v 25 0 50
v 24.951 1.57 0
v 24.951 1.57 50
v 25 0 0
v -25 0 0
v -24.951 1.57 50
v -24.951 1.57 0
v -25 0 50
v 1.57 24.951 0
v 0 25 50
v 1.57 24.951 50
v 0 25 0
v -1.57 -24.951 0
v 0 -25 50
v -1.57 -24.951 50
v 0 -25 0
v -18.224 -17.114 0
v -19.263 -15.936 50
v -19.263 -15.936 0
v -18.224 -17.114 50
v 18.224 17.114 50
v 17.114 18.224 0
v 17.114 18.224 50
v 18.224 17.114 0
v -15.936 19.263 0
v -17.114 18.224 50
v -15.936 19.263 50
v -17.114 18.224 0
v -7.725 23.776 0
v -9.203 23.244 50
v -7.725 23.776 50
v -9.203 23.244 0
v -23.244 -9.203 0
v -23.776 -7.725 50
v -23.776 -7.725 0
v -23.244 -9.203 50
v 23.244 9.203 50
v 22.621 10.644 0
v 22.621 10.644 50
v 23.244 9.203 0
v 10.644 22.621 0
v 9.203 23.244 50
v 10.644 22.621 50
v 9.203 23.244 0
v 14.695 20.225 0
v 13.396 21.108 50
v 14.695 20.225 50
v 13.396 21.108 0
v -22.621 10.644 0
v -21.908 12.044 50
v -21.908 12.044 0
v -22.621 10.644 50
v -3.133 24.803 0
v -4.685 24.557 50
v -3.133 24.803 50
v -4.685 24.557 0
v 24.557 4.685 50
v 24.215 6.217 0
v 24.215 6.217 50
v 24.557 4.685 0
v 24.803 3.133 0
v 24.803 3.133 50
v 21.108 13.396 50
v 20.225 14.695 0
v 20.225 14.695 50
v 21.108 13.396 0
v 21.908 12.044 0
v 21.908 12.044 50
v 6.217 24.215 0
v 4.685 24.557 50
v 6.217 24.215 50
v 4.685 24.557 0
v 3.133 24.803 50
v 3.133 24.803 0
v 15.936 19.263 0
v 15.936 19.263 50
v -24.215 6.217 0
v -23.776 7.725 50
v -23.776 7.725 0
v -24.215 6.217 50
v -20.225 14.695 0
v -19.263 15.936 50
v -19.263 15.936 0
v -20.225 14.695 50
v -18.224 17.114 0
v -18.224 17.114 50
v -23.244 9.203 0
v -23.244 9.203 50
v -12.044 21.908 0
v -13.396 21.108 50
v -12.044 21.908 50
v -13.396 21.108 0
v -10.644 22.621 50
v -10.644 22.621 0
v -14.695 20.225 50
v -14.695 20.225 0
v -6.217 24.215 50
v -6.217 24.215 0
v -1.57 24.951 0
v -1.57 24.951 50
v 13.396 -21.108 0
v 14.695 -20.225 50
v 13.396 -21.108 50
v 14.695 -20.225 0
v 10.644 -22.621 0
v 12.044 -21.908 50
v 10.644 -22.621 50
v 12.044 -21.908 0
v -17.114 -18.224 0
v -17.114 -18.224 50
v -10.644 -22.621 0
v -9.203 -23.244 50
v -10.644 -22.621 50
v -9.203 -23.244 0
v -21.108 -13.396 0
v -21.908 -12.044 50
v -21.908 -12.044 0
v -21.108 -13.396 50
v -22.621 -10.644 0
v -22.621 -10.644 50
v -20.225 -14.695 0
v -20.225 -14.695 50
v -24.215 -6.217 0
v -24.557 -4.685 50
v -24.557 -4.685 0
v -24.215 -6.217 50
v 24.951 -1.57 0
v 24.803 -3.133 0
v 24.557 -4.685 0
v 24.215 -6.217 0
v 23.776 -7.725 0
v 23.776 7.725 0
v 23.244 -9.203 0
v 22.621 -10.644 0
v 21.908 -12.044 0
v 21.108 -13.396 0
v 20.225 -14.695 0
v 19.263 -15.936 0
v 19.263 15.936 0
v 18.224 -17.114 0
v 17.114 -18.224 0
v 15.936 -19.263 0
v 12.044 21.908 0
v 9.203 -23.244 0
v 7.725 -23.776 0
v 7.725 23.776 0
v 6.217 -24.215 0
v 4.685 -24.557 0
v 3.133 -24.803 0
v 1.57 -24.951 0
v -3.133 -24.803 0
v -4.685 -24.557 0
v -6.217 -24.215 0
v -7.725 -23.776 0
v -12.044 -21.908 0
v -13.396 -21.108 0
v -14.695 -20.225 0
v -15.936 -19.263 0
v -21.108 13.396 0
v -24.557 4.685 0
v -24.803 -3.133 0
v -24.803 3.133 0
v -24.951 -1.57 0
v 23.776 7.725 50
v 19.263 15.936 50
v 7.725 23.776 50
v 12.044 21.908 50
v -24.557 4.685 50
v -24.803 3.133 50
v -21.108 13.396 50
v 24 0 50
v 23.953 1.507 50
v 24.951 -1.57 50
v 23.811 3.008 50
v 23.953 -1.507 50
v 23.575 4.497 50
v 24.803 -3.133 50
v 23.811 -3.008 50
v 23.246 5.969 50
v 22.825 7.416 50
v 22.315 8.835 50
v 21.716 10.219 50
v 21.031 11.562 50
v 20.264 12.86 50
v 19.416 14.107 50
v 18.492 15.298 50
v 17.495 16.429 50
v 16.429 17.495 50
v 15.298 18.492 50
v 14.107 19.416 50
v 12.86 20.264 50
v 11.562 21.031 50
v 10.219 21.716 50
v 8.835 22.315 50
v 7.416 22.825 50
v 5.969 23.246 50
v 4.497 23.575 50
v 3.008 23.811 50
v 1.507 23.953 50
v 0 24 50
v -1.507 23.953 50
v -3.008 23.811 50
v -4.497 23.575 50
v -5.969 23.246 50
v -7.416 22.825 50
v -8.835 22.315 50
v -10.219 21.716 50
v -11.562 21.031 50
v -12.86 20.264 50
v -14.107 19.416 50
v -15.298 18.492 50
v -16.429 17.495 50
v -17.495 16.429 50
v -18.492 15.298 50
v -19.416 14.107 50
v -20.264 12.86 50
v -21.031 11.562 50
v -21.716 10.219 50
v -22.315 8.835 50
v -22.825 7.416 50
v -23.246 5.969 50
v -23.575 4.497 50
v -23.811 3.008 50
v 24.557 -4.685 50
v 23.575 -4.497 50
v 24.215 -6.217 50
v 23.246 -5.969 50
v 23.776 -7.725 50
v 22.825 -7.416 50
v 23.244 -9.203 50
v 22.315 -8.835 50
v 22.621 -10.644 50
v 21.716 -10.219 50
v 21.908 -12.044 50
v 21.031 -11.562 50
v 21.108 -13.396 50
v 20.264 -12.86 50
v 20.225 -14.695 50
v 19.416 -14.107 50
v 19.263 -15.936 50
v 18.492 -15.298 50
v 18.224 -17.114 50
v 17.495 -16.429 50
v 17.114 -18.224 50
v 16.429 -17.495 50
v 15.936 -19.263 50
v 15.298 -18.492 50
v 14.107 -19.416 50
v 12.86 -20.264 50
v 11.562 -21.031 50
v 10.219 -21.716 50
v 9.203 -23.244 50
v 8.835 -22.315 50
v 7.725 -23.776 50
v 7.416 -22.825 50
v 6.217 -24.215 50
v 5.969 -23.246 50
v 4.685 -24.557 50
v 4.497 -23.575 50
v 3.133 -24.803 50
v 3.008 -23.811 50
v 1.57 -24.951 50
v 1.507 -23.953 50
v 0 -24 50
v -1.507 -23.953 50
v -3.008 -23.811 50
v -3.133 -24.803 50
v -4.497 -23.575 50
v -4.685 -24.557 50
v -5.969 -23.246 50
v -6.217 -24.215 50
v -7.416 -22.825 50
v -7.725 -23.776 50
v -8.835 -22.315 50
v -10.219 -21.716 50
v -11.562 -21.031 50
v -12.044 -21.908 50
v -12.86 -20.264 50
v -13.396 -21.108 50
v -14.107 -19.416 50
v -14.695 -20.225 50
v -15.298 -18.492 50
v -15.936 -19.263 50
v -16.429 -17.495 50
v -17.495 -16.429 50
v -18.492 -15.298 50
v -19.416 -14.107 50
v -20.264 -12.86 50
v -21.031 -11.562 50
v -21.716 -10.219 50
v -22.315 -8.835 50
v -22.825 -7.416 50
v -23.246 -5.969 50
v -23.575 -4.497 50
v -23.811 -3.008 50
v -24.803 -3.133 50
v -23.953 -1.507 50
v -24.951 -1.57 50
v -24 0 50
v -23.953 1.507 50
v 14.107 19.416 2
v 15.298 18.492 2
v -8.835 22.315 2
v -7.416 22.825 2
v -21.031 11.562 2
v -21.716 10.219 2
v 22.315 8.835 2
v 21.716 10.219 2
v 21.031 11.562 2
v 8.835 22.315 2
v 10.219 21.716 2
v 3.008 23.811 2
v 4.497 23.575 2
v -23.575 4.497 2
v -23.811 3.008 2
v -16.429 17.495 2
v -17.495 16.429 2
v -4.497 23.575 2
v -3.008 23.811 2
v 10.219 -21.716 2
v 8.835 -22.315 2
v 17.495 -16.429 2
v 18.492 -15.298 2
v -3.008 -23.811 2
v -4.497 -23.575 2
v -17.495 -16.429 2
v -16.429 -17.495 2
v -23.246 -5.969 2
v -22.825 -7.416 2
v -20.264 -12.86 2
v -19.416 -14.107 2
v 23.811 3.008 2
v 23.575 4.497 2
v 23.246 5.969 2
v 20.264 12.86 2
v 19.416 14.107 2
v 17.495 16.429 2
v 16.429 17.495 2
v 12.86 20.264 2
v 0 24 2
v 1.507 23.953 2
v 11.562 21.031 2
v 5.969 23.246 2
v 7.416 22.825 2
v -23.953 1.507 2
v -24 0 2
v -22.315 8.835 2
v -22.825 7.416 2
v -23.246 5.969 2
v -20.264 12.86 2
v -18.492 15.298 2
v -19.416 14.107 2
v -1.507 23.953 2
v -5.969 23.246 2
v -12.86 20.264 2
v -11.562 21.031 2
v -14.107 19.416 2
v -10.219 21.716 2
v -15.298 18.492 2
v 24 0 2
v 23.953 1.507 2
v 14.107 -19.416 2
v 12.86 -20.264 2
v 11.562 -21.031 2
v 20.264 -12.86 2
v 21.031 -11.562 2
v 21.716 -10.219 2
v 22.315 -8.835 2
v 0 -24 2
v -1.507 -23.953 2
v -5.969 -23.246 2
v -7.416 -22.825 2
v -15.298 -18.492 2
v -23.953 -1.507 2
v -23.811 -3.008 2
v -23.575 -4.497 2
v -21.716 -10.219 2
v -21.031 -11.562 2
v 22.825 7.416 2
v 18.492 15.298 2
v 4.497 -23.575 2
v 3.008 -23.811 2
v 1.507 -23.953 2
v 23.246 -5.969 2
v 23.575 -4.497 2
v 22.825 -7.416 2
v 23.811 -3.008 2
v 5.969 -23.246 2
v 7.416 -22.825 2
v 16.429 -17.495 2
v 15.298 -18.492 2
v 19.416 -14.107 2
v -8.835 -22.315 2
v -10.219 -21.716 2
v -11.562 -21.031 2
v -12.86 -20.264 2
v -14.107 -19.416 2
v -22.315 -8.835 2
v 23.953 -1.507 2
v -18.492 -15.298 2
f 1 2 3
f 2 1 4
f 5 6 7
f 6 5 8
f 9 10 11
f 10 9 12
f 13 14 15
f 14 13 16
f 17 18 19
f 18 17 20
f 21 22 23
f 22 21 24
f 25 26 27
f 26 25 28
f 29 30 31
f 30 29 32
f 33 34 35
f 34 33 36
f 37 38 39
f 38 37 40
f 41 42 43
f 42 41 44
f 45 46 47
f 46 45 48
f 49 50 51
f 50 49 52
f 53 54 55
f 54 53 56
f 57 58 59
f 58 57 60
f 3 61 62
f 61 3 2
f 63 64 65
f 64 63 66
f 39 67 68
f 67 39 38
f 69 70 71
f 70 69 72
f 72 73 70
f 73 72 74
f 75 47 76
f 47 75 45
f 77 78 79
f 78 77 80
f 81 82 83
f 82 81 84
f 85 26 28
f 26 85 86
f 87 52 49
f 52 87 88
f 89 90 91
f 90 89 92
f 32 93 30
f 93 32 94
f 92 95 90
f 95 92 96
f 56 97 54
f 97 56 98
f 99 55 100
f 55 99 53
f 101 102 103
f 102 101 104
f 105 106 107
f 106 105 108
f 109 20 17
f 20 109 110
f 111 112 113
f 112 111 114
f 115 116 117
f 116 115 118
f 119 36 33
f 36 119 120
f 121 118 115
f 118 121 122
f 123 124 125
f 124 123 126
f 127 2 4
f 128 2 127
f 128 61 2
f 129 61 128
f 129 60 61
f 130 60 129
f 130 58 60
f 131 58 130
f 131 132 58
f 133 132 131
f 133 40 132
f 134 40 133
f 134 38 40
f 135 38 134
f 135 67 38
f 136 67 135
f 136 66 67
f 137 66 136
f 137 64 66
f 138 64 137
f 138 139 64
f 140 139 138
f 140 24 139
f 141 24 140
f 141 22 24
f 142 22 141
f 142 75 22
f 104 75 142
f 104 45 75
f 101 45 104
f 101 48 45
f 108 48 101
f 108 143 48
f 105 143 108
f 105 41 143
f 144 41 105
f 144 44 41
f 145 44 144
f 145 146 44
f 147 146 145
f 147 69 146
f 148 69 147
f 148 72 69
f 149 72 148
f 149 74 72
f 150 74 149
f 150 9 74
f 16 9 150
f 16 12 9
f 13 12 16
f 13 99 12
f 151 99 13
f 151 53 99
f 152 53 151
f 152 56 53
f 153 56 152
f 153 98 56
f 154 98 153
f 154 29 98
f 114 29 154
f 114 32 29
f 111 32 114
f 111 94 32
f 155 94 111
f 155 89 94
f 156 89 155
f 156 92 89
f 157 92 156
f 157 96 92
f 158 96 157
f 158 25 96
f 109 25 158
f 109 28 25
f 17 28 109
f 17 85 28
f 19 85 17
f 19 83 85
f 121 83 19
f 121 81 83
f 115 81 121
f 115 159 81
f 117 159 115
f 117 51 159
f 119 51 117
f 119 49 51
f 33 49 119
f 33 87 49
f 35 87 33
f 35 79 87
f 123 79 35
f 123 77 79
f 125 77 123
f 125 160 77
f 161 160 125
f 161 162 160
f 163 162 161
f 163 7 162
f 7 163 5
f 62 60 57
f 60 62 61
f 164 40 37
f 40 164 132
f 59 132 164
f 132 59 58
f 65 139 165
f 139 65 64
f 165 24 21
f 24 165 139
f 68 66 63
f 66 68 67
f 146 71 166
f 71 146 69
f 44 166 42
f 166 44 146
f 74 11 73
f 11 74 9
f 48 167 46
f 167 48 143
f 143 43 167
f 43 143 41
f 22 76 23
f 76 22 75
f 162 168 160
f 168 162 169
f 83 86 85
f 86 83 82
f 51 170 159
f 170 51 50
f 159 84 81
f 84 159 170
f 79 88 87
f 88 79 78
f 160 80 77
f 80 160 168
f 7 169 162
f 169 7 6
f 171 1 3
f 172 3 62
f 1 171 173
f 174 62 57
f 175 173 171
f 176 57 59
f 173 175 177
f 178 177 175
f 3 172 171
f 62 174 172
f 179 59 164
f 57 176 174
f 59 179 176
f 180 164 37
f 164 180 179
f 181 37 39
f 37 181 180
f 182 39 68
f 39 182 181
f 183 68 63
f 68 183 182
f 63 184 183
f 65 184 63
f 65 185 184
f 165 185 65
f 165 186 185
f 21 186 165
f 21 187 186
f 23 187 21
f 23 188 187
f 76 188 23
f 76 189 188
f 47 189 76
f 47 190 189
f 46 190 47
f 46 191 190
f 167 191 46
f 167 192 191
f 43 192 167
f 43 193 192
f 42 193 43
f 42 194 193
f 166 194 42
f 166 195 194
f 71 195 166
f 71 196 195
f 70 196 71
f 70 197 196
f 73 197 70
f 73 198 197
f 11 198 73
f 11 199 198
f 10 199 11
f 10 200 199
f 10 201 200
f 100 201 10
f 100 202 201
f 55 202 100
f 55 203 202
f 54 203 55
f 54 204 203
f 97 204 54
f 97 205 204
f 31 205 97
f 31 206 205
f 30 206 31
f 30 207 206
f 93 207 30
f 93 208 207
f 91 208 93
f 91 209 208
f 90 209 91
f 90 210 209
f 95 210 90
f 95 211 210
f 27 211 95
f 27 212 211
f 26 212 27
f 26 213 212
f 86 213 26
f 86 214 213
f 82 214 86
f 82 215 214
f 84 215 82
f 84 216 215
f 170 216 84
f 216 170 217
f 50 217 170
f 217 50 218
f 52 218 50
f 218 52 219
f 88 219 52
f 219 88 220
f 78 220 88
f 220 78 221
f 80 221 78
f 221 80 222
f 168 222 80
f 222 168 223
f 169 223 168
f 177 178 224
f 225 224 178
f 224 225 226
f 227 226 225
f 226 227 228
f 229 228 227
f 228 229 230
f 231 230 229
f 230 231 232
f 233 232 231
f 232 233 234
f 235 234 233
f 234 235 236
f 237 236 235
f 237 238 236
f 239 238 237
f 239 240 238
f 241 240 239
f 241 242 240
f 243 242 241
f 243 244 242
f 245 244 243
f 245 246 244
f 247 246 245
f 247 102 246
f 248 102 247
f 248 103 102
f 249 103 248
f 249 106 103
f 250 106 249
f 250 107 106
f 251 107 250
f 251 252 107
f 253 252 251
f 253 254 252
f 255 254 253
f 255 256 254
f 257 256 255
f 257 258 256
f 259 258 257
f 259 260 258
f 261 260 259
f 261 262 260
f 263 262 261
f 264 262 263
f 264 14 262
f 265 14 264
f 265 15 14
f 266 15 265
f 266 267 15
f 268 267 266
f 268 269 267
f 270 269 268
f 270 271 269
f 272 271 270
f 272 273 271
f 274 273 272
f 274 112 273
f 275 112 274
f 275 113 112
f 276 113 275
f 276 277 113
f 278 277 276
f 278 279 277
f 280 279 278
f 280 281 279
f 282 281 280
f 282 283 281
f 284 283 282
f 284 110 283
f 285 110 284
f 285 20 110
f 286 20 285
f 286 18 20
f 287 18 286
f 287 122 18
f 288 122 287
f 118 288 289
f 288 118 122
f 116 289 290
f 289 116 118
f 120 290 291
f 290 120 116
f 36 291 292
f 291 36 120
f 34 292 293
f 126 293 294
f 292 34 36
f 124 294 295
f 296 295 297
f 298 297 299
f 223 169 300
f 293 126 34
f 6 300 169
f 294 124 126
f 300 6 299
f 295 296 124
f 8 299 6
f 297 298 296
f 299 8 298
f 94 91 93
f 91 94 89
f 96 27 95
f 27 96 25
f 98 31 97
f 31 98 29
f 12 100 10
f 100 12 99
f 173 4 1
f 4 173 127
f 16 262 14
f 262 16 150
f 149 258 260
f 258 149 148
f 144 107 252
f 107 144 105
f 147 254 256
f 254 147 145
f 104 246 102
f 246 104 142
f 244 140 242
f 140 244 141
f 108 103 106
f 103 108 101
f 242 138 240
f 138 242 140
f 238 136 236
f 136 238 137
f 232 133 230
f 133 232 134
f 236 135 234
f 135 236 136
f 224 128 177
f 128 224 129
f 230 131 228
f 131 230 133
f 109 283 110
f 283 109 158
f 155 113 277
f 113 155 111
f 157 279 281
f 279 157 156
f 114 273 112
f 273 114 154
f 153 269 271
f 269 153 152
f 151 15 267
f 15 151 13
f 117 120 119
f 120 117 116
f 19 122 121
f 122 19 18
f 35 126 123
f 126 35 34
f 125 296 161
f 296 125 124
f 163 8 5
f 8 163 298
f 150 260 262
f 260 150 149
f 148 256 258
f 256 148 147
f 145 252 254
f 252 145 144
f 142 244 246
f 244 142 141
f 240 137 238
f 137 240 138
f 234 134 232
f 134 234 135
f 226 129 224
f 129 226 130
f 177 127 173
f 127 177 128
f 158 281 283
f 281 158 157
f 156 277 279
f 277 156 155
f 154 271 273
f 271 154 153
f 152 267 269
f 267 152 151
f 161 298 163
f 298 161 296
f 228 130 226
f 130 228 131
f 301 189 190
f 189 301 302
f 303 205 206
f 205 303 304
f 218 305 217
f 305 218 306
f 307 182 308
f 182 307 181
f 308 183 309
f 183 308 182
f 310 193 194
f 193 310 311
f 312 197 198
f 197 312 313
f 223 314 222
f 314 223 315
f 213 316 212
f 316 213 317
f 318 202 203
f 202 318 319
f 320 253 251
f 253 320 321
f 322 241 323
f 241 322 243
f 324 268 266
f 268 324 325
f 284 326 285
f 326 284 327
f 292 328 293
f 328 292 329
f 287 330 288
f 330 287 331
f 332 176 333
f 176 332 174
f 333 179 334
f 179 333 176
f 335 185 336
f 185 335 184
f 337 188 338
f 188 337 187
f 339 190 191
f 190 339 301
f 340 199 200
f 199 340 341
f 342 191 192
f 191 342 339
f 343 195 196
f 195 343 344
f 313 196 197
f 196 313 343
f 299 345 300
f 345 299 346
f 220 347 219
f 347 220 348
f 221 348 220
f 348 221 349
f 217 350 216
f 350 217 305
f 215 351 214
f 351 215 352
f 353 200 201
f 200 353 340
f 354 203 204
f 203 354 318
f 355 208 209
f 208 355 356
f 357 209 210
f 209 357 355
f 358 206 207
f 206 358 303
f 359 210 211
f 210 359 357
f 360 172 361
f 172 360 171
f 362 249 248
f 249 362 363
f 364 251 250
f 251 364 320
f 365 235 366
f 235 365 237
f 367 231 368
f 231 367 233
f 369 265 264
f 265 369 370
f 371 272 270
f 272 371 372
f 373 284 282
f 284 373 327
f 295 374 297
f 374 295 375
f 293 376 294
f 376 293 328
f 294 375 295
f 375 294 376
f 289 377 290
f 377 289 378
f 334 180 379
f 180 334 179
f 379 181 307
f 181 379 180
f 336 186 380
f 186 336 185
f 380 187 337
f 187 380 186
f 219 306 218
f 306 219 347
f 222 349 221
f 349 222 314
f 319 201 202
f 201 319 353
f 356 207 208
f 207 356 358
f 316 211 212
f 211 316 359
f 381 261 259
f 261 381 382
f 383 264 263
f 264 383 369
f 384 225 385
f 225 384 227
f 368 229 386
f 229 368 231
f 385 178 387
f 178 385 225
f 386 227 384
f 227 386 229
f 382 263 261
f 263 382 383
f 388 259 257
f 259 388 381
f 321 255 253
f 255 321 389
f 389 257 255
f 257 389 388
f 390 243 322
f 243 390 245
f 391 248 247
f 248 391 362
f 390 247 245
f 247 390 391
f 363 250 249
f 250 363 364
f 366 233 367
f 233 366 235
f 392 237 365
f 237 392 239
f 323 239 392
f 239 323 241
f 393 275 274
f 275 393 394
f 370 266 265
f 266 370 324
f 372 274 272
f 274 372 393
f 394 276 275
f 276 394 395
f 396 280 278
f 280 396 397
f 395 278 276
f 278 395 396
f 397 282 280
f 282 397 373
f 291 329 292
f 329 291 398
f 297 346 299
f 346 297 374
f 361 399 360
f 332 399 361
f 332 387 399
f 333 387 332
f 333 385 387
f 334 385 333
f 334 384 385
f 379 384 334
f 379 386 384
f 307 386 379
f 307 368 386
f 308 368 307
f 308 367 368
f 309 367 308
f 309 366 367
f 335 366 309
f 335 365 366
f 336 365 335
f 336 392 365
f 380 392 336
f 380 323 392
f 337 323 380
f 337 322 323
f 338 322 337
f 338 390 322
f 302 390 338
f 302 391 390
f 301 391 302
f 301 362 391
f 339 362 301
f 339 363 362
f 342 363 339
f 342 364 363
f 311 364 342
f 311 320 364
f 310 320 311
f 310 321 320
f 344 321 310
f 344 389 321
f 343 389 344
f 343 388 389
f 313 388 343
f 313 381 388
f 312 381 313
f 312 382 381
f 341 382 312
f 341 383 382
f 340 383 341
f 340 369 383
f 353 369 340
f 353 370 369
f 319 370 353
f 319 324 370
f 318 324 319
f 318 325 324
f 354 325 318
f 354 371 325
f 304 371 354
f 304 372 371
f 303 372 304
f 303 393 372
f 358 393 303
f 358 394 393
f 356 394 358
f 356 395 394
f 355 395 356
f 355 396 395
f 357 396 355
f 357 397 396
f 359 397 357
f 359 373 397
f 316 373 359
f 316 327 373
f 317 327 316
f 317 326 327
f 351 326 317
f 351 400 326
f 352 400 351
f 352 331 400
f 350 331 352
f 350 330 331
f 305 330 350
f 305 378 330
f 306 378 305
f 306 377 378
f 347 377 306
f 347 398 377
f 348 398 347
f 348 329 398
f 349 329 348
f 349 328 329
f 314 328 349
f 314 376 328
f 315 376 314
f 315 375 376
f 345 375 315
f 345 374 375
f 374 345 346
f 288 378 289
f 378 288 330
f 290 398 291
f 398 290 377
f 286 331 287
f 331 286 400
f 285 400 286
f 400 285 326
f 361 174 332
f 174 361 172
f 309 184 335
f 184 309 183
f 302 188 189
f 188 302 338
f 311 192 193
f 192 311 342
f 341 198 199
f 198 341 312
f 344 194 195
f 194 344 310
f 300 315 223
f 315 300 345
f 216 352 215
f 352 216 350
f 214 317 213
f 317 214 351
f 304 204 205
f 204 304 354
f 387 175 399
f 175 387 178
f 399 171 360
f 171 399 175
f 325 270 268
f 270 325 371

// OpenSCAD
difference(){
    cylinder(h=50, d=50, $fn=100);
    translate([0,0,2]) cylinder(h=51, d=48, $fn=100);
}
